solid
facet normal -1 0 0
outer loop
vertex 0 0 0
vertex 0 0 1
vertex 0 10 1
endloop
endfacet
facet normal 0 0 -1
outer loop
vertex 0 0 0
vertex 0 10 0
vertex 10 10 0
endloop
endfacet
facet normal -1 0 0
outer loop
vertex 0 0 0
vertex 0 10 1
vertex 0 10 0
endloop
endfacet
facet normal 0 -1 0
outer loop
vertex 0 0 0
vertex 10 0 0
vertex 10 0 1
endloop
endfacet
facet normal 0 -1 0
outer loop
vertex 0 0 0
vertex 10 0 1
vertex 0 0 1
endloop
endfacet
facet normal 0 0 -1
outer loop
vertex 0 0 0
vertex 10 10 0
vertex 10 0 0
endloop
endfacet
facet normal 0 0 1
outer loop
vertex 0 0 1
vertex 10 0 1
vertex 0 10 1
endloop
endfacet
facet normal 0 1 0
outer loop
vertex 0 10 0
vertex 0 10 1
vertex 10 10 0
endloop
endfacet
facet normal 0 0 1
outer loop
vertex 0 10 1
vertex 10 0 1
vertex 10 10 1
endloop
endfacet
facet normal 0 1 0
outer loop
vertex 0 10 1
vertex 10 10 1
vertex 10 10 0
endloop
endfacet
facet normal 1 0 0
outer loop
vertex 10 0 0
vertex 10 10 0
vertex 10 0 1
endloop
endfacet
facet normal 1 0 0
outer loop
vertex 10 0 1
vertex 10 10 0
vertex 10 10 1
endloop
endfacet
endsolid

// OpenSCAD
/* Warning, this is a very basic generator with a lot of approximation 
input data : [TQFP, XDB, 10x10x1mm, 64, , A, C04-21558A]
generated by com.zoubworld.electronics.cad.model3d.Basic
Date : Sun Feb 15 10:50:49 CET 2026
*/

//body
color("black")
translate([0,0,0])
cube([10.0,10.0,1.0], center=false);
